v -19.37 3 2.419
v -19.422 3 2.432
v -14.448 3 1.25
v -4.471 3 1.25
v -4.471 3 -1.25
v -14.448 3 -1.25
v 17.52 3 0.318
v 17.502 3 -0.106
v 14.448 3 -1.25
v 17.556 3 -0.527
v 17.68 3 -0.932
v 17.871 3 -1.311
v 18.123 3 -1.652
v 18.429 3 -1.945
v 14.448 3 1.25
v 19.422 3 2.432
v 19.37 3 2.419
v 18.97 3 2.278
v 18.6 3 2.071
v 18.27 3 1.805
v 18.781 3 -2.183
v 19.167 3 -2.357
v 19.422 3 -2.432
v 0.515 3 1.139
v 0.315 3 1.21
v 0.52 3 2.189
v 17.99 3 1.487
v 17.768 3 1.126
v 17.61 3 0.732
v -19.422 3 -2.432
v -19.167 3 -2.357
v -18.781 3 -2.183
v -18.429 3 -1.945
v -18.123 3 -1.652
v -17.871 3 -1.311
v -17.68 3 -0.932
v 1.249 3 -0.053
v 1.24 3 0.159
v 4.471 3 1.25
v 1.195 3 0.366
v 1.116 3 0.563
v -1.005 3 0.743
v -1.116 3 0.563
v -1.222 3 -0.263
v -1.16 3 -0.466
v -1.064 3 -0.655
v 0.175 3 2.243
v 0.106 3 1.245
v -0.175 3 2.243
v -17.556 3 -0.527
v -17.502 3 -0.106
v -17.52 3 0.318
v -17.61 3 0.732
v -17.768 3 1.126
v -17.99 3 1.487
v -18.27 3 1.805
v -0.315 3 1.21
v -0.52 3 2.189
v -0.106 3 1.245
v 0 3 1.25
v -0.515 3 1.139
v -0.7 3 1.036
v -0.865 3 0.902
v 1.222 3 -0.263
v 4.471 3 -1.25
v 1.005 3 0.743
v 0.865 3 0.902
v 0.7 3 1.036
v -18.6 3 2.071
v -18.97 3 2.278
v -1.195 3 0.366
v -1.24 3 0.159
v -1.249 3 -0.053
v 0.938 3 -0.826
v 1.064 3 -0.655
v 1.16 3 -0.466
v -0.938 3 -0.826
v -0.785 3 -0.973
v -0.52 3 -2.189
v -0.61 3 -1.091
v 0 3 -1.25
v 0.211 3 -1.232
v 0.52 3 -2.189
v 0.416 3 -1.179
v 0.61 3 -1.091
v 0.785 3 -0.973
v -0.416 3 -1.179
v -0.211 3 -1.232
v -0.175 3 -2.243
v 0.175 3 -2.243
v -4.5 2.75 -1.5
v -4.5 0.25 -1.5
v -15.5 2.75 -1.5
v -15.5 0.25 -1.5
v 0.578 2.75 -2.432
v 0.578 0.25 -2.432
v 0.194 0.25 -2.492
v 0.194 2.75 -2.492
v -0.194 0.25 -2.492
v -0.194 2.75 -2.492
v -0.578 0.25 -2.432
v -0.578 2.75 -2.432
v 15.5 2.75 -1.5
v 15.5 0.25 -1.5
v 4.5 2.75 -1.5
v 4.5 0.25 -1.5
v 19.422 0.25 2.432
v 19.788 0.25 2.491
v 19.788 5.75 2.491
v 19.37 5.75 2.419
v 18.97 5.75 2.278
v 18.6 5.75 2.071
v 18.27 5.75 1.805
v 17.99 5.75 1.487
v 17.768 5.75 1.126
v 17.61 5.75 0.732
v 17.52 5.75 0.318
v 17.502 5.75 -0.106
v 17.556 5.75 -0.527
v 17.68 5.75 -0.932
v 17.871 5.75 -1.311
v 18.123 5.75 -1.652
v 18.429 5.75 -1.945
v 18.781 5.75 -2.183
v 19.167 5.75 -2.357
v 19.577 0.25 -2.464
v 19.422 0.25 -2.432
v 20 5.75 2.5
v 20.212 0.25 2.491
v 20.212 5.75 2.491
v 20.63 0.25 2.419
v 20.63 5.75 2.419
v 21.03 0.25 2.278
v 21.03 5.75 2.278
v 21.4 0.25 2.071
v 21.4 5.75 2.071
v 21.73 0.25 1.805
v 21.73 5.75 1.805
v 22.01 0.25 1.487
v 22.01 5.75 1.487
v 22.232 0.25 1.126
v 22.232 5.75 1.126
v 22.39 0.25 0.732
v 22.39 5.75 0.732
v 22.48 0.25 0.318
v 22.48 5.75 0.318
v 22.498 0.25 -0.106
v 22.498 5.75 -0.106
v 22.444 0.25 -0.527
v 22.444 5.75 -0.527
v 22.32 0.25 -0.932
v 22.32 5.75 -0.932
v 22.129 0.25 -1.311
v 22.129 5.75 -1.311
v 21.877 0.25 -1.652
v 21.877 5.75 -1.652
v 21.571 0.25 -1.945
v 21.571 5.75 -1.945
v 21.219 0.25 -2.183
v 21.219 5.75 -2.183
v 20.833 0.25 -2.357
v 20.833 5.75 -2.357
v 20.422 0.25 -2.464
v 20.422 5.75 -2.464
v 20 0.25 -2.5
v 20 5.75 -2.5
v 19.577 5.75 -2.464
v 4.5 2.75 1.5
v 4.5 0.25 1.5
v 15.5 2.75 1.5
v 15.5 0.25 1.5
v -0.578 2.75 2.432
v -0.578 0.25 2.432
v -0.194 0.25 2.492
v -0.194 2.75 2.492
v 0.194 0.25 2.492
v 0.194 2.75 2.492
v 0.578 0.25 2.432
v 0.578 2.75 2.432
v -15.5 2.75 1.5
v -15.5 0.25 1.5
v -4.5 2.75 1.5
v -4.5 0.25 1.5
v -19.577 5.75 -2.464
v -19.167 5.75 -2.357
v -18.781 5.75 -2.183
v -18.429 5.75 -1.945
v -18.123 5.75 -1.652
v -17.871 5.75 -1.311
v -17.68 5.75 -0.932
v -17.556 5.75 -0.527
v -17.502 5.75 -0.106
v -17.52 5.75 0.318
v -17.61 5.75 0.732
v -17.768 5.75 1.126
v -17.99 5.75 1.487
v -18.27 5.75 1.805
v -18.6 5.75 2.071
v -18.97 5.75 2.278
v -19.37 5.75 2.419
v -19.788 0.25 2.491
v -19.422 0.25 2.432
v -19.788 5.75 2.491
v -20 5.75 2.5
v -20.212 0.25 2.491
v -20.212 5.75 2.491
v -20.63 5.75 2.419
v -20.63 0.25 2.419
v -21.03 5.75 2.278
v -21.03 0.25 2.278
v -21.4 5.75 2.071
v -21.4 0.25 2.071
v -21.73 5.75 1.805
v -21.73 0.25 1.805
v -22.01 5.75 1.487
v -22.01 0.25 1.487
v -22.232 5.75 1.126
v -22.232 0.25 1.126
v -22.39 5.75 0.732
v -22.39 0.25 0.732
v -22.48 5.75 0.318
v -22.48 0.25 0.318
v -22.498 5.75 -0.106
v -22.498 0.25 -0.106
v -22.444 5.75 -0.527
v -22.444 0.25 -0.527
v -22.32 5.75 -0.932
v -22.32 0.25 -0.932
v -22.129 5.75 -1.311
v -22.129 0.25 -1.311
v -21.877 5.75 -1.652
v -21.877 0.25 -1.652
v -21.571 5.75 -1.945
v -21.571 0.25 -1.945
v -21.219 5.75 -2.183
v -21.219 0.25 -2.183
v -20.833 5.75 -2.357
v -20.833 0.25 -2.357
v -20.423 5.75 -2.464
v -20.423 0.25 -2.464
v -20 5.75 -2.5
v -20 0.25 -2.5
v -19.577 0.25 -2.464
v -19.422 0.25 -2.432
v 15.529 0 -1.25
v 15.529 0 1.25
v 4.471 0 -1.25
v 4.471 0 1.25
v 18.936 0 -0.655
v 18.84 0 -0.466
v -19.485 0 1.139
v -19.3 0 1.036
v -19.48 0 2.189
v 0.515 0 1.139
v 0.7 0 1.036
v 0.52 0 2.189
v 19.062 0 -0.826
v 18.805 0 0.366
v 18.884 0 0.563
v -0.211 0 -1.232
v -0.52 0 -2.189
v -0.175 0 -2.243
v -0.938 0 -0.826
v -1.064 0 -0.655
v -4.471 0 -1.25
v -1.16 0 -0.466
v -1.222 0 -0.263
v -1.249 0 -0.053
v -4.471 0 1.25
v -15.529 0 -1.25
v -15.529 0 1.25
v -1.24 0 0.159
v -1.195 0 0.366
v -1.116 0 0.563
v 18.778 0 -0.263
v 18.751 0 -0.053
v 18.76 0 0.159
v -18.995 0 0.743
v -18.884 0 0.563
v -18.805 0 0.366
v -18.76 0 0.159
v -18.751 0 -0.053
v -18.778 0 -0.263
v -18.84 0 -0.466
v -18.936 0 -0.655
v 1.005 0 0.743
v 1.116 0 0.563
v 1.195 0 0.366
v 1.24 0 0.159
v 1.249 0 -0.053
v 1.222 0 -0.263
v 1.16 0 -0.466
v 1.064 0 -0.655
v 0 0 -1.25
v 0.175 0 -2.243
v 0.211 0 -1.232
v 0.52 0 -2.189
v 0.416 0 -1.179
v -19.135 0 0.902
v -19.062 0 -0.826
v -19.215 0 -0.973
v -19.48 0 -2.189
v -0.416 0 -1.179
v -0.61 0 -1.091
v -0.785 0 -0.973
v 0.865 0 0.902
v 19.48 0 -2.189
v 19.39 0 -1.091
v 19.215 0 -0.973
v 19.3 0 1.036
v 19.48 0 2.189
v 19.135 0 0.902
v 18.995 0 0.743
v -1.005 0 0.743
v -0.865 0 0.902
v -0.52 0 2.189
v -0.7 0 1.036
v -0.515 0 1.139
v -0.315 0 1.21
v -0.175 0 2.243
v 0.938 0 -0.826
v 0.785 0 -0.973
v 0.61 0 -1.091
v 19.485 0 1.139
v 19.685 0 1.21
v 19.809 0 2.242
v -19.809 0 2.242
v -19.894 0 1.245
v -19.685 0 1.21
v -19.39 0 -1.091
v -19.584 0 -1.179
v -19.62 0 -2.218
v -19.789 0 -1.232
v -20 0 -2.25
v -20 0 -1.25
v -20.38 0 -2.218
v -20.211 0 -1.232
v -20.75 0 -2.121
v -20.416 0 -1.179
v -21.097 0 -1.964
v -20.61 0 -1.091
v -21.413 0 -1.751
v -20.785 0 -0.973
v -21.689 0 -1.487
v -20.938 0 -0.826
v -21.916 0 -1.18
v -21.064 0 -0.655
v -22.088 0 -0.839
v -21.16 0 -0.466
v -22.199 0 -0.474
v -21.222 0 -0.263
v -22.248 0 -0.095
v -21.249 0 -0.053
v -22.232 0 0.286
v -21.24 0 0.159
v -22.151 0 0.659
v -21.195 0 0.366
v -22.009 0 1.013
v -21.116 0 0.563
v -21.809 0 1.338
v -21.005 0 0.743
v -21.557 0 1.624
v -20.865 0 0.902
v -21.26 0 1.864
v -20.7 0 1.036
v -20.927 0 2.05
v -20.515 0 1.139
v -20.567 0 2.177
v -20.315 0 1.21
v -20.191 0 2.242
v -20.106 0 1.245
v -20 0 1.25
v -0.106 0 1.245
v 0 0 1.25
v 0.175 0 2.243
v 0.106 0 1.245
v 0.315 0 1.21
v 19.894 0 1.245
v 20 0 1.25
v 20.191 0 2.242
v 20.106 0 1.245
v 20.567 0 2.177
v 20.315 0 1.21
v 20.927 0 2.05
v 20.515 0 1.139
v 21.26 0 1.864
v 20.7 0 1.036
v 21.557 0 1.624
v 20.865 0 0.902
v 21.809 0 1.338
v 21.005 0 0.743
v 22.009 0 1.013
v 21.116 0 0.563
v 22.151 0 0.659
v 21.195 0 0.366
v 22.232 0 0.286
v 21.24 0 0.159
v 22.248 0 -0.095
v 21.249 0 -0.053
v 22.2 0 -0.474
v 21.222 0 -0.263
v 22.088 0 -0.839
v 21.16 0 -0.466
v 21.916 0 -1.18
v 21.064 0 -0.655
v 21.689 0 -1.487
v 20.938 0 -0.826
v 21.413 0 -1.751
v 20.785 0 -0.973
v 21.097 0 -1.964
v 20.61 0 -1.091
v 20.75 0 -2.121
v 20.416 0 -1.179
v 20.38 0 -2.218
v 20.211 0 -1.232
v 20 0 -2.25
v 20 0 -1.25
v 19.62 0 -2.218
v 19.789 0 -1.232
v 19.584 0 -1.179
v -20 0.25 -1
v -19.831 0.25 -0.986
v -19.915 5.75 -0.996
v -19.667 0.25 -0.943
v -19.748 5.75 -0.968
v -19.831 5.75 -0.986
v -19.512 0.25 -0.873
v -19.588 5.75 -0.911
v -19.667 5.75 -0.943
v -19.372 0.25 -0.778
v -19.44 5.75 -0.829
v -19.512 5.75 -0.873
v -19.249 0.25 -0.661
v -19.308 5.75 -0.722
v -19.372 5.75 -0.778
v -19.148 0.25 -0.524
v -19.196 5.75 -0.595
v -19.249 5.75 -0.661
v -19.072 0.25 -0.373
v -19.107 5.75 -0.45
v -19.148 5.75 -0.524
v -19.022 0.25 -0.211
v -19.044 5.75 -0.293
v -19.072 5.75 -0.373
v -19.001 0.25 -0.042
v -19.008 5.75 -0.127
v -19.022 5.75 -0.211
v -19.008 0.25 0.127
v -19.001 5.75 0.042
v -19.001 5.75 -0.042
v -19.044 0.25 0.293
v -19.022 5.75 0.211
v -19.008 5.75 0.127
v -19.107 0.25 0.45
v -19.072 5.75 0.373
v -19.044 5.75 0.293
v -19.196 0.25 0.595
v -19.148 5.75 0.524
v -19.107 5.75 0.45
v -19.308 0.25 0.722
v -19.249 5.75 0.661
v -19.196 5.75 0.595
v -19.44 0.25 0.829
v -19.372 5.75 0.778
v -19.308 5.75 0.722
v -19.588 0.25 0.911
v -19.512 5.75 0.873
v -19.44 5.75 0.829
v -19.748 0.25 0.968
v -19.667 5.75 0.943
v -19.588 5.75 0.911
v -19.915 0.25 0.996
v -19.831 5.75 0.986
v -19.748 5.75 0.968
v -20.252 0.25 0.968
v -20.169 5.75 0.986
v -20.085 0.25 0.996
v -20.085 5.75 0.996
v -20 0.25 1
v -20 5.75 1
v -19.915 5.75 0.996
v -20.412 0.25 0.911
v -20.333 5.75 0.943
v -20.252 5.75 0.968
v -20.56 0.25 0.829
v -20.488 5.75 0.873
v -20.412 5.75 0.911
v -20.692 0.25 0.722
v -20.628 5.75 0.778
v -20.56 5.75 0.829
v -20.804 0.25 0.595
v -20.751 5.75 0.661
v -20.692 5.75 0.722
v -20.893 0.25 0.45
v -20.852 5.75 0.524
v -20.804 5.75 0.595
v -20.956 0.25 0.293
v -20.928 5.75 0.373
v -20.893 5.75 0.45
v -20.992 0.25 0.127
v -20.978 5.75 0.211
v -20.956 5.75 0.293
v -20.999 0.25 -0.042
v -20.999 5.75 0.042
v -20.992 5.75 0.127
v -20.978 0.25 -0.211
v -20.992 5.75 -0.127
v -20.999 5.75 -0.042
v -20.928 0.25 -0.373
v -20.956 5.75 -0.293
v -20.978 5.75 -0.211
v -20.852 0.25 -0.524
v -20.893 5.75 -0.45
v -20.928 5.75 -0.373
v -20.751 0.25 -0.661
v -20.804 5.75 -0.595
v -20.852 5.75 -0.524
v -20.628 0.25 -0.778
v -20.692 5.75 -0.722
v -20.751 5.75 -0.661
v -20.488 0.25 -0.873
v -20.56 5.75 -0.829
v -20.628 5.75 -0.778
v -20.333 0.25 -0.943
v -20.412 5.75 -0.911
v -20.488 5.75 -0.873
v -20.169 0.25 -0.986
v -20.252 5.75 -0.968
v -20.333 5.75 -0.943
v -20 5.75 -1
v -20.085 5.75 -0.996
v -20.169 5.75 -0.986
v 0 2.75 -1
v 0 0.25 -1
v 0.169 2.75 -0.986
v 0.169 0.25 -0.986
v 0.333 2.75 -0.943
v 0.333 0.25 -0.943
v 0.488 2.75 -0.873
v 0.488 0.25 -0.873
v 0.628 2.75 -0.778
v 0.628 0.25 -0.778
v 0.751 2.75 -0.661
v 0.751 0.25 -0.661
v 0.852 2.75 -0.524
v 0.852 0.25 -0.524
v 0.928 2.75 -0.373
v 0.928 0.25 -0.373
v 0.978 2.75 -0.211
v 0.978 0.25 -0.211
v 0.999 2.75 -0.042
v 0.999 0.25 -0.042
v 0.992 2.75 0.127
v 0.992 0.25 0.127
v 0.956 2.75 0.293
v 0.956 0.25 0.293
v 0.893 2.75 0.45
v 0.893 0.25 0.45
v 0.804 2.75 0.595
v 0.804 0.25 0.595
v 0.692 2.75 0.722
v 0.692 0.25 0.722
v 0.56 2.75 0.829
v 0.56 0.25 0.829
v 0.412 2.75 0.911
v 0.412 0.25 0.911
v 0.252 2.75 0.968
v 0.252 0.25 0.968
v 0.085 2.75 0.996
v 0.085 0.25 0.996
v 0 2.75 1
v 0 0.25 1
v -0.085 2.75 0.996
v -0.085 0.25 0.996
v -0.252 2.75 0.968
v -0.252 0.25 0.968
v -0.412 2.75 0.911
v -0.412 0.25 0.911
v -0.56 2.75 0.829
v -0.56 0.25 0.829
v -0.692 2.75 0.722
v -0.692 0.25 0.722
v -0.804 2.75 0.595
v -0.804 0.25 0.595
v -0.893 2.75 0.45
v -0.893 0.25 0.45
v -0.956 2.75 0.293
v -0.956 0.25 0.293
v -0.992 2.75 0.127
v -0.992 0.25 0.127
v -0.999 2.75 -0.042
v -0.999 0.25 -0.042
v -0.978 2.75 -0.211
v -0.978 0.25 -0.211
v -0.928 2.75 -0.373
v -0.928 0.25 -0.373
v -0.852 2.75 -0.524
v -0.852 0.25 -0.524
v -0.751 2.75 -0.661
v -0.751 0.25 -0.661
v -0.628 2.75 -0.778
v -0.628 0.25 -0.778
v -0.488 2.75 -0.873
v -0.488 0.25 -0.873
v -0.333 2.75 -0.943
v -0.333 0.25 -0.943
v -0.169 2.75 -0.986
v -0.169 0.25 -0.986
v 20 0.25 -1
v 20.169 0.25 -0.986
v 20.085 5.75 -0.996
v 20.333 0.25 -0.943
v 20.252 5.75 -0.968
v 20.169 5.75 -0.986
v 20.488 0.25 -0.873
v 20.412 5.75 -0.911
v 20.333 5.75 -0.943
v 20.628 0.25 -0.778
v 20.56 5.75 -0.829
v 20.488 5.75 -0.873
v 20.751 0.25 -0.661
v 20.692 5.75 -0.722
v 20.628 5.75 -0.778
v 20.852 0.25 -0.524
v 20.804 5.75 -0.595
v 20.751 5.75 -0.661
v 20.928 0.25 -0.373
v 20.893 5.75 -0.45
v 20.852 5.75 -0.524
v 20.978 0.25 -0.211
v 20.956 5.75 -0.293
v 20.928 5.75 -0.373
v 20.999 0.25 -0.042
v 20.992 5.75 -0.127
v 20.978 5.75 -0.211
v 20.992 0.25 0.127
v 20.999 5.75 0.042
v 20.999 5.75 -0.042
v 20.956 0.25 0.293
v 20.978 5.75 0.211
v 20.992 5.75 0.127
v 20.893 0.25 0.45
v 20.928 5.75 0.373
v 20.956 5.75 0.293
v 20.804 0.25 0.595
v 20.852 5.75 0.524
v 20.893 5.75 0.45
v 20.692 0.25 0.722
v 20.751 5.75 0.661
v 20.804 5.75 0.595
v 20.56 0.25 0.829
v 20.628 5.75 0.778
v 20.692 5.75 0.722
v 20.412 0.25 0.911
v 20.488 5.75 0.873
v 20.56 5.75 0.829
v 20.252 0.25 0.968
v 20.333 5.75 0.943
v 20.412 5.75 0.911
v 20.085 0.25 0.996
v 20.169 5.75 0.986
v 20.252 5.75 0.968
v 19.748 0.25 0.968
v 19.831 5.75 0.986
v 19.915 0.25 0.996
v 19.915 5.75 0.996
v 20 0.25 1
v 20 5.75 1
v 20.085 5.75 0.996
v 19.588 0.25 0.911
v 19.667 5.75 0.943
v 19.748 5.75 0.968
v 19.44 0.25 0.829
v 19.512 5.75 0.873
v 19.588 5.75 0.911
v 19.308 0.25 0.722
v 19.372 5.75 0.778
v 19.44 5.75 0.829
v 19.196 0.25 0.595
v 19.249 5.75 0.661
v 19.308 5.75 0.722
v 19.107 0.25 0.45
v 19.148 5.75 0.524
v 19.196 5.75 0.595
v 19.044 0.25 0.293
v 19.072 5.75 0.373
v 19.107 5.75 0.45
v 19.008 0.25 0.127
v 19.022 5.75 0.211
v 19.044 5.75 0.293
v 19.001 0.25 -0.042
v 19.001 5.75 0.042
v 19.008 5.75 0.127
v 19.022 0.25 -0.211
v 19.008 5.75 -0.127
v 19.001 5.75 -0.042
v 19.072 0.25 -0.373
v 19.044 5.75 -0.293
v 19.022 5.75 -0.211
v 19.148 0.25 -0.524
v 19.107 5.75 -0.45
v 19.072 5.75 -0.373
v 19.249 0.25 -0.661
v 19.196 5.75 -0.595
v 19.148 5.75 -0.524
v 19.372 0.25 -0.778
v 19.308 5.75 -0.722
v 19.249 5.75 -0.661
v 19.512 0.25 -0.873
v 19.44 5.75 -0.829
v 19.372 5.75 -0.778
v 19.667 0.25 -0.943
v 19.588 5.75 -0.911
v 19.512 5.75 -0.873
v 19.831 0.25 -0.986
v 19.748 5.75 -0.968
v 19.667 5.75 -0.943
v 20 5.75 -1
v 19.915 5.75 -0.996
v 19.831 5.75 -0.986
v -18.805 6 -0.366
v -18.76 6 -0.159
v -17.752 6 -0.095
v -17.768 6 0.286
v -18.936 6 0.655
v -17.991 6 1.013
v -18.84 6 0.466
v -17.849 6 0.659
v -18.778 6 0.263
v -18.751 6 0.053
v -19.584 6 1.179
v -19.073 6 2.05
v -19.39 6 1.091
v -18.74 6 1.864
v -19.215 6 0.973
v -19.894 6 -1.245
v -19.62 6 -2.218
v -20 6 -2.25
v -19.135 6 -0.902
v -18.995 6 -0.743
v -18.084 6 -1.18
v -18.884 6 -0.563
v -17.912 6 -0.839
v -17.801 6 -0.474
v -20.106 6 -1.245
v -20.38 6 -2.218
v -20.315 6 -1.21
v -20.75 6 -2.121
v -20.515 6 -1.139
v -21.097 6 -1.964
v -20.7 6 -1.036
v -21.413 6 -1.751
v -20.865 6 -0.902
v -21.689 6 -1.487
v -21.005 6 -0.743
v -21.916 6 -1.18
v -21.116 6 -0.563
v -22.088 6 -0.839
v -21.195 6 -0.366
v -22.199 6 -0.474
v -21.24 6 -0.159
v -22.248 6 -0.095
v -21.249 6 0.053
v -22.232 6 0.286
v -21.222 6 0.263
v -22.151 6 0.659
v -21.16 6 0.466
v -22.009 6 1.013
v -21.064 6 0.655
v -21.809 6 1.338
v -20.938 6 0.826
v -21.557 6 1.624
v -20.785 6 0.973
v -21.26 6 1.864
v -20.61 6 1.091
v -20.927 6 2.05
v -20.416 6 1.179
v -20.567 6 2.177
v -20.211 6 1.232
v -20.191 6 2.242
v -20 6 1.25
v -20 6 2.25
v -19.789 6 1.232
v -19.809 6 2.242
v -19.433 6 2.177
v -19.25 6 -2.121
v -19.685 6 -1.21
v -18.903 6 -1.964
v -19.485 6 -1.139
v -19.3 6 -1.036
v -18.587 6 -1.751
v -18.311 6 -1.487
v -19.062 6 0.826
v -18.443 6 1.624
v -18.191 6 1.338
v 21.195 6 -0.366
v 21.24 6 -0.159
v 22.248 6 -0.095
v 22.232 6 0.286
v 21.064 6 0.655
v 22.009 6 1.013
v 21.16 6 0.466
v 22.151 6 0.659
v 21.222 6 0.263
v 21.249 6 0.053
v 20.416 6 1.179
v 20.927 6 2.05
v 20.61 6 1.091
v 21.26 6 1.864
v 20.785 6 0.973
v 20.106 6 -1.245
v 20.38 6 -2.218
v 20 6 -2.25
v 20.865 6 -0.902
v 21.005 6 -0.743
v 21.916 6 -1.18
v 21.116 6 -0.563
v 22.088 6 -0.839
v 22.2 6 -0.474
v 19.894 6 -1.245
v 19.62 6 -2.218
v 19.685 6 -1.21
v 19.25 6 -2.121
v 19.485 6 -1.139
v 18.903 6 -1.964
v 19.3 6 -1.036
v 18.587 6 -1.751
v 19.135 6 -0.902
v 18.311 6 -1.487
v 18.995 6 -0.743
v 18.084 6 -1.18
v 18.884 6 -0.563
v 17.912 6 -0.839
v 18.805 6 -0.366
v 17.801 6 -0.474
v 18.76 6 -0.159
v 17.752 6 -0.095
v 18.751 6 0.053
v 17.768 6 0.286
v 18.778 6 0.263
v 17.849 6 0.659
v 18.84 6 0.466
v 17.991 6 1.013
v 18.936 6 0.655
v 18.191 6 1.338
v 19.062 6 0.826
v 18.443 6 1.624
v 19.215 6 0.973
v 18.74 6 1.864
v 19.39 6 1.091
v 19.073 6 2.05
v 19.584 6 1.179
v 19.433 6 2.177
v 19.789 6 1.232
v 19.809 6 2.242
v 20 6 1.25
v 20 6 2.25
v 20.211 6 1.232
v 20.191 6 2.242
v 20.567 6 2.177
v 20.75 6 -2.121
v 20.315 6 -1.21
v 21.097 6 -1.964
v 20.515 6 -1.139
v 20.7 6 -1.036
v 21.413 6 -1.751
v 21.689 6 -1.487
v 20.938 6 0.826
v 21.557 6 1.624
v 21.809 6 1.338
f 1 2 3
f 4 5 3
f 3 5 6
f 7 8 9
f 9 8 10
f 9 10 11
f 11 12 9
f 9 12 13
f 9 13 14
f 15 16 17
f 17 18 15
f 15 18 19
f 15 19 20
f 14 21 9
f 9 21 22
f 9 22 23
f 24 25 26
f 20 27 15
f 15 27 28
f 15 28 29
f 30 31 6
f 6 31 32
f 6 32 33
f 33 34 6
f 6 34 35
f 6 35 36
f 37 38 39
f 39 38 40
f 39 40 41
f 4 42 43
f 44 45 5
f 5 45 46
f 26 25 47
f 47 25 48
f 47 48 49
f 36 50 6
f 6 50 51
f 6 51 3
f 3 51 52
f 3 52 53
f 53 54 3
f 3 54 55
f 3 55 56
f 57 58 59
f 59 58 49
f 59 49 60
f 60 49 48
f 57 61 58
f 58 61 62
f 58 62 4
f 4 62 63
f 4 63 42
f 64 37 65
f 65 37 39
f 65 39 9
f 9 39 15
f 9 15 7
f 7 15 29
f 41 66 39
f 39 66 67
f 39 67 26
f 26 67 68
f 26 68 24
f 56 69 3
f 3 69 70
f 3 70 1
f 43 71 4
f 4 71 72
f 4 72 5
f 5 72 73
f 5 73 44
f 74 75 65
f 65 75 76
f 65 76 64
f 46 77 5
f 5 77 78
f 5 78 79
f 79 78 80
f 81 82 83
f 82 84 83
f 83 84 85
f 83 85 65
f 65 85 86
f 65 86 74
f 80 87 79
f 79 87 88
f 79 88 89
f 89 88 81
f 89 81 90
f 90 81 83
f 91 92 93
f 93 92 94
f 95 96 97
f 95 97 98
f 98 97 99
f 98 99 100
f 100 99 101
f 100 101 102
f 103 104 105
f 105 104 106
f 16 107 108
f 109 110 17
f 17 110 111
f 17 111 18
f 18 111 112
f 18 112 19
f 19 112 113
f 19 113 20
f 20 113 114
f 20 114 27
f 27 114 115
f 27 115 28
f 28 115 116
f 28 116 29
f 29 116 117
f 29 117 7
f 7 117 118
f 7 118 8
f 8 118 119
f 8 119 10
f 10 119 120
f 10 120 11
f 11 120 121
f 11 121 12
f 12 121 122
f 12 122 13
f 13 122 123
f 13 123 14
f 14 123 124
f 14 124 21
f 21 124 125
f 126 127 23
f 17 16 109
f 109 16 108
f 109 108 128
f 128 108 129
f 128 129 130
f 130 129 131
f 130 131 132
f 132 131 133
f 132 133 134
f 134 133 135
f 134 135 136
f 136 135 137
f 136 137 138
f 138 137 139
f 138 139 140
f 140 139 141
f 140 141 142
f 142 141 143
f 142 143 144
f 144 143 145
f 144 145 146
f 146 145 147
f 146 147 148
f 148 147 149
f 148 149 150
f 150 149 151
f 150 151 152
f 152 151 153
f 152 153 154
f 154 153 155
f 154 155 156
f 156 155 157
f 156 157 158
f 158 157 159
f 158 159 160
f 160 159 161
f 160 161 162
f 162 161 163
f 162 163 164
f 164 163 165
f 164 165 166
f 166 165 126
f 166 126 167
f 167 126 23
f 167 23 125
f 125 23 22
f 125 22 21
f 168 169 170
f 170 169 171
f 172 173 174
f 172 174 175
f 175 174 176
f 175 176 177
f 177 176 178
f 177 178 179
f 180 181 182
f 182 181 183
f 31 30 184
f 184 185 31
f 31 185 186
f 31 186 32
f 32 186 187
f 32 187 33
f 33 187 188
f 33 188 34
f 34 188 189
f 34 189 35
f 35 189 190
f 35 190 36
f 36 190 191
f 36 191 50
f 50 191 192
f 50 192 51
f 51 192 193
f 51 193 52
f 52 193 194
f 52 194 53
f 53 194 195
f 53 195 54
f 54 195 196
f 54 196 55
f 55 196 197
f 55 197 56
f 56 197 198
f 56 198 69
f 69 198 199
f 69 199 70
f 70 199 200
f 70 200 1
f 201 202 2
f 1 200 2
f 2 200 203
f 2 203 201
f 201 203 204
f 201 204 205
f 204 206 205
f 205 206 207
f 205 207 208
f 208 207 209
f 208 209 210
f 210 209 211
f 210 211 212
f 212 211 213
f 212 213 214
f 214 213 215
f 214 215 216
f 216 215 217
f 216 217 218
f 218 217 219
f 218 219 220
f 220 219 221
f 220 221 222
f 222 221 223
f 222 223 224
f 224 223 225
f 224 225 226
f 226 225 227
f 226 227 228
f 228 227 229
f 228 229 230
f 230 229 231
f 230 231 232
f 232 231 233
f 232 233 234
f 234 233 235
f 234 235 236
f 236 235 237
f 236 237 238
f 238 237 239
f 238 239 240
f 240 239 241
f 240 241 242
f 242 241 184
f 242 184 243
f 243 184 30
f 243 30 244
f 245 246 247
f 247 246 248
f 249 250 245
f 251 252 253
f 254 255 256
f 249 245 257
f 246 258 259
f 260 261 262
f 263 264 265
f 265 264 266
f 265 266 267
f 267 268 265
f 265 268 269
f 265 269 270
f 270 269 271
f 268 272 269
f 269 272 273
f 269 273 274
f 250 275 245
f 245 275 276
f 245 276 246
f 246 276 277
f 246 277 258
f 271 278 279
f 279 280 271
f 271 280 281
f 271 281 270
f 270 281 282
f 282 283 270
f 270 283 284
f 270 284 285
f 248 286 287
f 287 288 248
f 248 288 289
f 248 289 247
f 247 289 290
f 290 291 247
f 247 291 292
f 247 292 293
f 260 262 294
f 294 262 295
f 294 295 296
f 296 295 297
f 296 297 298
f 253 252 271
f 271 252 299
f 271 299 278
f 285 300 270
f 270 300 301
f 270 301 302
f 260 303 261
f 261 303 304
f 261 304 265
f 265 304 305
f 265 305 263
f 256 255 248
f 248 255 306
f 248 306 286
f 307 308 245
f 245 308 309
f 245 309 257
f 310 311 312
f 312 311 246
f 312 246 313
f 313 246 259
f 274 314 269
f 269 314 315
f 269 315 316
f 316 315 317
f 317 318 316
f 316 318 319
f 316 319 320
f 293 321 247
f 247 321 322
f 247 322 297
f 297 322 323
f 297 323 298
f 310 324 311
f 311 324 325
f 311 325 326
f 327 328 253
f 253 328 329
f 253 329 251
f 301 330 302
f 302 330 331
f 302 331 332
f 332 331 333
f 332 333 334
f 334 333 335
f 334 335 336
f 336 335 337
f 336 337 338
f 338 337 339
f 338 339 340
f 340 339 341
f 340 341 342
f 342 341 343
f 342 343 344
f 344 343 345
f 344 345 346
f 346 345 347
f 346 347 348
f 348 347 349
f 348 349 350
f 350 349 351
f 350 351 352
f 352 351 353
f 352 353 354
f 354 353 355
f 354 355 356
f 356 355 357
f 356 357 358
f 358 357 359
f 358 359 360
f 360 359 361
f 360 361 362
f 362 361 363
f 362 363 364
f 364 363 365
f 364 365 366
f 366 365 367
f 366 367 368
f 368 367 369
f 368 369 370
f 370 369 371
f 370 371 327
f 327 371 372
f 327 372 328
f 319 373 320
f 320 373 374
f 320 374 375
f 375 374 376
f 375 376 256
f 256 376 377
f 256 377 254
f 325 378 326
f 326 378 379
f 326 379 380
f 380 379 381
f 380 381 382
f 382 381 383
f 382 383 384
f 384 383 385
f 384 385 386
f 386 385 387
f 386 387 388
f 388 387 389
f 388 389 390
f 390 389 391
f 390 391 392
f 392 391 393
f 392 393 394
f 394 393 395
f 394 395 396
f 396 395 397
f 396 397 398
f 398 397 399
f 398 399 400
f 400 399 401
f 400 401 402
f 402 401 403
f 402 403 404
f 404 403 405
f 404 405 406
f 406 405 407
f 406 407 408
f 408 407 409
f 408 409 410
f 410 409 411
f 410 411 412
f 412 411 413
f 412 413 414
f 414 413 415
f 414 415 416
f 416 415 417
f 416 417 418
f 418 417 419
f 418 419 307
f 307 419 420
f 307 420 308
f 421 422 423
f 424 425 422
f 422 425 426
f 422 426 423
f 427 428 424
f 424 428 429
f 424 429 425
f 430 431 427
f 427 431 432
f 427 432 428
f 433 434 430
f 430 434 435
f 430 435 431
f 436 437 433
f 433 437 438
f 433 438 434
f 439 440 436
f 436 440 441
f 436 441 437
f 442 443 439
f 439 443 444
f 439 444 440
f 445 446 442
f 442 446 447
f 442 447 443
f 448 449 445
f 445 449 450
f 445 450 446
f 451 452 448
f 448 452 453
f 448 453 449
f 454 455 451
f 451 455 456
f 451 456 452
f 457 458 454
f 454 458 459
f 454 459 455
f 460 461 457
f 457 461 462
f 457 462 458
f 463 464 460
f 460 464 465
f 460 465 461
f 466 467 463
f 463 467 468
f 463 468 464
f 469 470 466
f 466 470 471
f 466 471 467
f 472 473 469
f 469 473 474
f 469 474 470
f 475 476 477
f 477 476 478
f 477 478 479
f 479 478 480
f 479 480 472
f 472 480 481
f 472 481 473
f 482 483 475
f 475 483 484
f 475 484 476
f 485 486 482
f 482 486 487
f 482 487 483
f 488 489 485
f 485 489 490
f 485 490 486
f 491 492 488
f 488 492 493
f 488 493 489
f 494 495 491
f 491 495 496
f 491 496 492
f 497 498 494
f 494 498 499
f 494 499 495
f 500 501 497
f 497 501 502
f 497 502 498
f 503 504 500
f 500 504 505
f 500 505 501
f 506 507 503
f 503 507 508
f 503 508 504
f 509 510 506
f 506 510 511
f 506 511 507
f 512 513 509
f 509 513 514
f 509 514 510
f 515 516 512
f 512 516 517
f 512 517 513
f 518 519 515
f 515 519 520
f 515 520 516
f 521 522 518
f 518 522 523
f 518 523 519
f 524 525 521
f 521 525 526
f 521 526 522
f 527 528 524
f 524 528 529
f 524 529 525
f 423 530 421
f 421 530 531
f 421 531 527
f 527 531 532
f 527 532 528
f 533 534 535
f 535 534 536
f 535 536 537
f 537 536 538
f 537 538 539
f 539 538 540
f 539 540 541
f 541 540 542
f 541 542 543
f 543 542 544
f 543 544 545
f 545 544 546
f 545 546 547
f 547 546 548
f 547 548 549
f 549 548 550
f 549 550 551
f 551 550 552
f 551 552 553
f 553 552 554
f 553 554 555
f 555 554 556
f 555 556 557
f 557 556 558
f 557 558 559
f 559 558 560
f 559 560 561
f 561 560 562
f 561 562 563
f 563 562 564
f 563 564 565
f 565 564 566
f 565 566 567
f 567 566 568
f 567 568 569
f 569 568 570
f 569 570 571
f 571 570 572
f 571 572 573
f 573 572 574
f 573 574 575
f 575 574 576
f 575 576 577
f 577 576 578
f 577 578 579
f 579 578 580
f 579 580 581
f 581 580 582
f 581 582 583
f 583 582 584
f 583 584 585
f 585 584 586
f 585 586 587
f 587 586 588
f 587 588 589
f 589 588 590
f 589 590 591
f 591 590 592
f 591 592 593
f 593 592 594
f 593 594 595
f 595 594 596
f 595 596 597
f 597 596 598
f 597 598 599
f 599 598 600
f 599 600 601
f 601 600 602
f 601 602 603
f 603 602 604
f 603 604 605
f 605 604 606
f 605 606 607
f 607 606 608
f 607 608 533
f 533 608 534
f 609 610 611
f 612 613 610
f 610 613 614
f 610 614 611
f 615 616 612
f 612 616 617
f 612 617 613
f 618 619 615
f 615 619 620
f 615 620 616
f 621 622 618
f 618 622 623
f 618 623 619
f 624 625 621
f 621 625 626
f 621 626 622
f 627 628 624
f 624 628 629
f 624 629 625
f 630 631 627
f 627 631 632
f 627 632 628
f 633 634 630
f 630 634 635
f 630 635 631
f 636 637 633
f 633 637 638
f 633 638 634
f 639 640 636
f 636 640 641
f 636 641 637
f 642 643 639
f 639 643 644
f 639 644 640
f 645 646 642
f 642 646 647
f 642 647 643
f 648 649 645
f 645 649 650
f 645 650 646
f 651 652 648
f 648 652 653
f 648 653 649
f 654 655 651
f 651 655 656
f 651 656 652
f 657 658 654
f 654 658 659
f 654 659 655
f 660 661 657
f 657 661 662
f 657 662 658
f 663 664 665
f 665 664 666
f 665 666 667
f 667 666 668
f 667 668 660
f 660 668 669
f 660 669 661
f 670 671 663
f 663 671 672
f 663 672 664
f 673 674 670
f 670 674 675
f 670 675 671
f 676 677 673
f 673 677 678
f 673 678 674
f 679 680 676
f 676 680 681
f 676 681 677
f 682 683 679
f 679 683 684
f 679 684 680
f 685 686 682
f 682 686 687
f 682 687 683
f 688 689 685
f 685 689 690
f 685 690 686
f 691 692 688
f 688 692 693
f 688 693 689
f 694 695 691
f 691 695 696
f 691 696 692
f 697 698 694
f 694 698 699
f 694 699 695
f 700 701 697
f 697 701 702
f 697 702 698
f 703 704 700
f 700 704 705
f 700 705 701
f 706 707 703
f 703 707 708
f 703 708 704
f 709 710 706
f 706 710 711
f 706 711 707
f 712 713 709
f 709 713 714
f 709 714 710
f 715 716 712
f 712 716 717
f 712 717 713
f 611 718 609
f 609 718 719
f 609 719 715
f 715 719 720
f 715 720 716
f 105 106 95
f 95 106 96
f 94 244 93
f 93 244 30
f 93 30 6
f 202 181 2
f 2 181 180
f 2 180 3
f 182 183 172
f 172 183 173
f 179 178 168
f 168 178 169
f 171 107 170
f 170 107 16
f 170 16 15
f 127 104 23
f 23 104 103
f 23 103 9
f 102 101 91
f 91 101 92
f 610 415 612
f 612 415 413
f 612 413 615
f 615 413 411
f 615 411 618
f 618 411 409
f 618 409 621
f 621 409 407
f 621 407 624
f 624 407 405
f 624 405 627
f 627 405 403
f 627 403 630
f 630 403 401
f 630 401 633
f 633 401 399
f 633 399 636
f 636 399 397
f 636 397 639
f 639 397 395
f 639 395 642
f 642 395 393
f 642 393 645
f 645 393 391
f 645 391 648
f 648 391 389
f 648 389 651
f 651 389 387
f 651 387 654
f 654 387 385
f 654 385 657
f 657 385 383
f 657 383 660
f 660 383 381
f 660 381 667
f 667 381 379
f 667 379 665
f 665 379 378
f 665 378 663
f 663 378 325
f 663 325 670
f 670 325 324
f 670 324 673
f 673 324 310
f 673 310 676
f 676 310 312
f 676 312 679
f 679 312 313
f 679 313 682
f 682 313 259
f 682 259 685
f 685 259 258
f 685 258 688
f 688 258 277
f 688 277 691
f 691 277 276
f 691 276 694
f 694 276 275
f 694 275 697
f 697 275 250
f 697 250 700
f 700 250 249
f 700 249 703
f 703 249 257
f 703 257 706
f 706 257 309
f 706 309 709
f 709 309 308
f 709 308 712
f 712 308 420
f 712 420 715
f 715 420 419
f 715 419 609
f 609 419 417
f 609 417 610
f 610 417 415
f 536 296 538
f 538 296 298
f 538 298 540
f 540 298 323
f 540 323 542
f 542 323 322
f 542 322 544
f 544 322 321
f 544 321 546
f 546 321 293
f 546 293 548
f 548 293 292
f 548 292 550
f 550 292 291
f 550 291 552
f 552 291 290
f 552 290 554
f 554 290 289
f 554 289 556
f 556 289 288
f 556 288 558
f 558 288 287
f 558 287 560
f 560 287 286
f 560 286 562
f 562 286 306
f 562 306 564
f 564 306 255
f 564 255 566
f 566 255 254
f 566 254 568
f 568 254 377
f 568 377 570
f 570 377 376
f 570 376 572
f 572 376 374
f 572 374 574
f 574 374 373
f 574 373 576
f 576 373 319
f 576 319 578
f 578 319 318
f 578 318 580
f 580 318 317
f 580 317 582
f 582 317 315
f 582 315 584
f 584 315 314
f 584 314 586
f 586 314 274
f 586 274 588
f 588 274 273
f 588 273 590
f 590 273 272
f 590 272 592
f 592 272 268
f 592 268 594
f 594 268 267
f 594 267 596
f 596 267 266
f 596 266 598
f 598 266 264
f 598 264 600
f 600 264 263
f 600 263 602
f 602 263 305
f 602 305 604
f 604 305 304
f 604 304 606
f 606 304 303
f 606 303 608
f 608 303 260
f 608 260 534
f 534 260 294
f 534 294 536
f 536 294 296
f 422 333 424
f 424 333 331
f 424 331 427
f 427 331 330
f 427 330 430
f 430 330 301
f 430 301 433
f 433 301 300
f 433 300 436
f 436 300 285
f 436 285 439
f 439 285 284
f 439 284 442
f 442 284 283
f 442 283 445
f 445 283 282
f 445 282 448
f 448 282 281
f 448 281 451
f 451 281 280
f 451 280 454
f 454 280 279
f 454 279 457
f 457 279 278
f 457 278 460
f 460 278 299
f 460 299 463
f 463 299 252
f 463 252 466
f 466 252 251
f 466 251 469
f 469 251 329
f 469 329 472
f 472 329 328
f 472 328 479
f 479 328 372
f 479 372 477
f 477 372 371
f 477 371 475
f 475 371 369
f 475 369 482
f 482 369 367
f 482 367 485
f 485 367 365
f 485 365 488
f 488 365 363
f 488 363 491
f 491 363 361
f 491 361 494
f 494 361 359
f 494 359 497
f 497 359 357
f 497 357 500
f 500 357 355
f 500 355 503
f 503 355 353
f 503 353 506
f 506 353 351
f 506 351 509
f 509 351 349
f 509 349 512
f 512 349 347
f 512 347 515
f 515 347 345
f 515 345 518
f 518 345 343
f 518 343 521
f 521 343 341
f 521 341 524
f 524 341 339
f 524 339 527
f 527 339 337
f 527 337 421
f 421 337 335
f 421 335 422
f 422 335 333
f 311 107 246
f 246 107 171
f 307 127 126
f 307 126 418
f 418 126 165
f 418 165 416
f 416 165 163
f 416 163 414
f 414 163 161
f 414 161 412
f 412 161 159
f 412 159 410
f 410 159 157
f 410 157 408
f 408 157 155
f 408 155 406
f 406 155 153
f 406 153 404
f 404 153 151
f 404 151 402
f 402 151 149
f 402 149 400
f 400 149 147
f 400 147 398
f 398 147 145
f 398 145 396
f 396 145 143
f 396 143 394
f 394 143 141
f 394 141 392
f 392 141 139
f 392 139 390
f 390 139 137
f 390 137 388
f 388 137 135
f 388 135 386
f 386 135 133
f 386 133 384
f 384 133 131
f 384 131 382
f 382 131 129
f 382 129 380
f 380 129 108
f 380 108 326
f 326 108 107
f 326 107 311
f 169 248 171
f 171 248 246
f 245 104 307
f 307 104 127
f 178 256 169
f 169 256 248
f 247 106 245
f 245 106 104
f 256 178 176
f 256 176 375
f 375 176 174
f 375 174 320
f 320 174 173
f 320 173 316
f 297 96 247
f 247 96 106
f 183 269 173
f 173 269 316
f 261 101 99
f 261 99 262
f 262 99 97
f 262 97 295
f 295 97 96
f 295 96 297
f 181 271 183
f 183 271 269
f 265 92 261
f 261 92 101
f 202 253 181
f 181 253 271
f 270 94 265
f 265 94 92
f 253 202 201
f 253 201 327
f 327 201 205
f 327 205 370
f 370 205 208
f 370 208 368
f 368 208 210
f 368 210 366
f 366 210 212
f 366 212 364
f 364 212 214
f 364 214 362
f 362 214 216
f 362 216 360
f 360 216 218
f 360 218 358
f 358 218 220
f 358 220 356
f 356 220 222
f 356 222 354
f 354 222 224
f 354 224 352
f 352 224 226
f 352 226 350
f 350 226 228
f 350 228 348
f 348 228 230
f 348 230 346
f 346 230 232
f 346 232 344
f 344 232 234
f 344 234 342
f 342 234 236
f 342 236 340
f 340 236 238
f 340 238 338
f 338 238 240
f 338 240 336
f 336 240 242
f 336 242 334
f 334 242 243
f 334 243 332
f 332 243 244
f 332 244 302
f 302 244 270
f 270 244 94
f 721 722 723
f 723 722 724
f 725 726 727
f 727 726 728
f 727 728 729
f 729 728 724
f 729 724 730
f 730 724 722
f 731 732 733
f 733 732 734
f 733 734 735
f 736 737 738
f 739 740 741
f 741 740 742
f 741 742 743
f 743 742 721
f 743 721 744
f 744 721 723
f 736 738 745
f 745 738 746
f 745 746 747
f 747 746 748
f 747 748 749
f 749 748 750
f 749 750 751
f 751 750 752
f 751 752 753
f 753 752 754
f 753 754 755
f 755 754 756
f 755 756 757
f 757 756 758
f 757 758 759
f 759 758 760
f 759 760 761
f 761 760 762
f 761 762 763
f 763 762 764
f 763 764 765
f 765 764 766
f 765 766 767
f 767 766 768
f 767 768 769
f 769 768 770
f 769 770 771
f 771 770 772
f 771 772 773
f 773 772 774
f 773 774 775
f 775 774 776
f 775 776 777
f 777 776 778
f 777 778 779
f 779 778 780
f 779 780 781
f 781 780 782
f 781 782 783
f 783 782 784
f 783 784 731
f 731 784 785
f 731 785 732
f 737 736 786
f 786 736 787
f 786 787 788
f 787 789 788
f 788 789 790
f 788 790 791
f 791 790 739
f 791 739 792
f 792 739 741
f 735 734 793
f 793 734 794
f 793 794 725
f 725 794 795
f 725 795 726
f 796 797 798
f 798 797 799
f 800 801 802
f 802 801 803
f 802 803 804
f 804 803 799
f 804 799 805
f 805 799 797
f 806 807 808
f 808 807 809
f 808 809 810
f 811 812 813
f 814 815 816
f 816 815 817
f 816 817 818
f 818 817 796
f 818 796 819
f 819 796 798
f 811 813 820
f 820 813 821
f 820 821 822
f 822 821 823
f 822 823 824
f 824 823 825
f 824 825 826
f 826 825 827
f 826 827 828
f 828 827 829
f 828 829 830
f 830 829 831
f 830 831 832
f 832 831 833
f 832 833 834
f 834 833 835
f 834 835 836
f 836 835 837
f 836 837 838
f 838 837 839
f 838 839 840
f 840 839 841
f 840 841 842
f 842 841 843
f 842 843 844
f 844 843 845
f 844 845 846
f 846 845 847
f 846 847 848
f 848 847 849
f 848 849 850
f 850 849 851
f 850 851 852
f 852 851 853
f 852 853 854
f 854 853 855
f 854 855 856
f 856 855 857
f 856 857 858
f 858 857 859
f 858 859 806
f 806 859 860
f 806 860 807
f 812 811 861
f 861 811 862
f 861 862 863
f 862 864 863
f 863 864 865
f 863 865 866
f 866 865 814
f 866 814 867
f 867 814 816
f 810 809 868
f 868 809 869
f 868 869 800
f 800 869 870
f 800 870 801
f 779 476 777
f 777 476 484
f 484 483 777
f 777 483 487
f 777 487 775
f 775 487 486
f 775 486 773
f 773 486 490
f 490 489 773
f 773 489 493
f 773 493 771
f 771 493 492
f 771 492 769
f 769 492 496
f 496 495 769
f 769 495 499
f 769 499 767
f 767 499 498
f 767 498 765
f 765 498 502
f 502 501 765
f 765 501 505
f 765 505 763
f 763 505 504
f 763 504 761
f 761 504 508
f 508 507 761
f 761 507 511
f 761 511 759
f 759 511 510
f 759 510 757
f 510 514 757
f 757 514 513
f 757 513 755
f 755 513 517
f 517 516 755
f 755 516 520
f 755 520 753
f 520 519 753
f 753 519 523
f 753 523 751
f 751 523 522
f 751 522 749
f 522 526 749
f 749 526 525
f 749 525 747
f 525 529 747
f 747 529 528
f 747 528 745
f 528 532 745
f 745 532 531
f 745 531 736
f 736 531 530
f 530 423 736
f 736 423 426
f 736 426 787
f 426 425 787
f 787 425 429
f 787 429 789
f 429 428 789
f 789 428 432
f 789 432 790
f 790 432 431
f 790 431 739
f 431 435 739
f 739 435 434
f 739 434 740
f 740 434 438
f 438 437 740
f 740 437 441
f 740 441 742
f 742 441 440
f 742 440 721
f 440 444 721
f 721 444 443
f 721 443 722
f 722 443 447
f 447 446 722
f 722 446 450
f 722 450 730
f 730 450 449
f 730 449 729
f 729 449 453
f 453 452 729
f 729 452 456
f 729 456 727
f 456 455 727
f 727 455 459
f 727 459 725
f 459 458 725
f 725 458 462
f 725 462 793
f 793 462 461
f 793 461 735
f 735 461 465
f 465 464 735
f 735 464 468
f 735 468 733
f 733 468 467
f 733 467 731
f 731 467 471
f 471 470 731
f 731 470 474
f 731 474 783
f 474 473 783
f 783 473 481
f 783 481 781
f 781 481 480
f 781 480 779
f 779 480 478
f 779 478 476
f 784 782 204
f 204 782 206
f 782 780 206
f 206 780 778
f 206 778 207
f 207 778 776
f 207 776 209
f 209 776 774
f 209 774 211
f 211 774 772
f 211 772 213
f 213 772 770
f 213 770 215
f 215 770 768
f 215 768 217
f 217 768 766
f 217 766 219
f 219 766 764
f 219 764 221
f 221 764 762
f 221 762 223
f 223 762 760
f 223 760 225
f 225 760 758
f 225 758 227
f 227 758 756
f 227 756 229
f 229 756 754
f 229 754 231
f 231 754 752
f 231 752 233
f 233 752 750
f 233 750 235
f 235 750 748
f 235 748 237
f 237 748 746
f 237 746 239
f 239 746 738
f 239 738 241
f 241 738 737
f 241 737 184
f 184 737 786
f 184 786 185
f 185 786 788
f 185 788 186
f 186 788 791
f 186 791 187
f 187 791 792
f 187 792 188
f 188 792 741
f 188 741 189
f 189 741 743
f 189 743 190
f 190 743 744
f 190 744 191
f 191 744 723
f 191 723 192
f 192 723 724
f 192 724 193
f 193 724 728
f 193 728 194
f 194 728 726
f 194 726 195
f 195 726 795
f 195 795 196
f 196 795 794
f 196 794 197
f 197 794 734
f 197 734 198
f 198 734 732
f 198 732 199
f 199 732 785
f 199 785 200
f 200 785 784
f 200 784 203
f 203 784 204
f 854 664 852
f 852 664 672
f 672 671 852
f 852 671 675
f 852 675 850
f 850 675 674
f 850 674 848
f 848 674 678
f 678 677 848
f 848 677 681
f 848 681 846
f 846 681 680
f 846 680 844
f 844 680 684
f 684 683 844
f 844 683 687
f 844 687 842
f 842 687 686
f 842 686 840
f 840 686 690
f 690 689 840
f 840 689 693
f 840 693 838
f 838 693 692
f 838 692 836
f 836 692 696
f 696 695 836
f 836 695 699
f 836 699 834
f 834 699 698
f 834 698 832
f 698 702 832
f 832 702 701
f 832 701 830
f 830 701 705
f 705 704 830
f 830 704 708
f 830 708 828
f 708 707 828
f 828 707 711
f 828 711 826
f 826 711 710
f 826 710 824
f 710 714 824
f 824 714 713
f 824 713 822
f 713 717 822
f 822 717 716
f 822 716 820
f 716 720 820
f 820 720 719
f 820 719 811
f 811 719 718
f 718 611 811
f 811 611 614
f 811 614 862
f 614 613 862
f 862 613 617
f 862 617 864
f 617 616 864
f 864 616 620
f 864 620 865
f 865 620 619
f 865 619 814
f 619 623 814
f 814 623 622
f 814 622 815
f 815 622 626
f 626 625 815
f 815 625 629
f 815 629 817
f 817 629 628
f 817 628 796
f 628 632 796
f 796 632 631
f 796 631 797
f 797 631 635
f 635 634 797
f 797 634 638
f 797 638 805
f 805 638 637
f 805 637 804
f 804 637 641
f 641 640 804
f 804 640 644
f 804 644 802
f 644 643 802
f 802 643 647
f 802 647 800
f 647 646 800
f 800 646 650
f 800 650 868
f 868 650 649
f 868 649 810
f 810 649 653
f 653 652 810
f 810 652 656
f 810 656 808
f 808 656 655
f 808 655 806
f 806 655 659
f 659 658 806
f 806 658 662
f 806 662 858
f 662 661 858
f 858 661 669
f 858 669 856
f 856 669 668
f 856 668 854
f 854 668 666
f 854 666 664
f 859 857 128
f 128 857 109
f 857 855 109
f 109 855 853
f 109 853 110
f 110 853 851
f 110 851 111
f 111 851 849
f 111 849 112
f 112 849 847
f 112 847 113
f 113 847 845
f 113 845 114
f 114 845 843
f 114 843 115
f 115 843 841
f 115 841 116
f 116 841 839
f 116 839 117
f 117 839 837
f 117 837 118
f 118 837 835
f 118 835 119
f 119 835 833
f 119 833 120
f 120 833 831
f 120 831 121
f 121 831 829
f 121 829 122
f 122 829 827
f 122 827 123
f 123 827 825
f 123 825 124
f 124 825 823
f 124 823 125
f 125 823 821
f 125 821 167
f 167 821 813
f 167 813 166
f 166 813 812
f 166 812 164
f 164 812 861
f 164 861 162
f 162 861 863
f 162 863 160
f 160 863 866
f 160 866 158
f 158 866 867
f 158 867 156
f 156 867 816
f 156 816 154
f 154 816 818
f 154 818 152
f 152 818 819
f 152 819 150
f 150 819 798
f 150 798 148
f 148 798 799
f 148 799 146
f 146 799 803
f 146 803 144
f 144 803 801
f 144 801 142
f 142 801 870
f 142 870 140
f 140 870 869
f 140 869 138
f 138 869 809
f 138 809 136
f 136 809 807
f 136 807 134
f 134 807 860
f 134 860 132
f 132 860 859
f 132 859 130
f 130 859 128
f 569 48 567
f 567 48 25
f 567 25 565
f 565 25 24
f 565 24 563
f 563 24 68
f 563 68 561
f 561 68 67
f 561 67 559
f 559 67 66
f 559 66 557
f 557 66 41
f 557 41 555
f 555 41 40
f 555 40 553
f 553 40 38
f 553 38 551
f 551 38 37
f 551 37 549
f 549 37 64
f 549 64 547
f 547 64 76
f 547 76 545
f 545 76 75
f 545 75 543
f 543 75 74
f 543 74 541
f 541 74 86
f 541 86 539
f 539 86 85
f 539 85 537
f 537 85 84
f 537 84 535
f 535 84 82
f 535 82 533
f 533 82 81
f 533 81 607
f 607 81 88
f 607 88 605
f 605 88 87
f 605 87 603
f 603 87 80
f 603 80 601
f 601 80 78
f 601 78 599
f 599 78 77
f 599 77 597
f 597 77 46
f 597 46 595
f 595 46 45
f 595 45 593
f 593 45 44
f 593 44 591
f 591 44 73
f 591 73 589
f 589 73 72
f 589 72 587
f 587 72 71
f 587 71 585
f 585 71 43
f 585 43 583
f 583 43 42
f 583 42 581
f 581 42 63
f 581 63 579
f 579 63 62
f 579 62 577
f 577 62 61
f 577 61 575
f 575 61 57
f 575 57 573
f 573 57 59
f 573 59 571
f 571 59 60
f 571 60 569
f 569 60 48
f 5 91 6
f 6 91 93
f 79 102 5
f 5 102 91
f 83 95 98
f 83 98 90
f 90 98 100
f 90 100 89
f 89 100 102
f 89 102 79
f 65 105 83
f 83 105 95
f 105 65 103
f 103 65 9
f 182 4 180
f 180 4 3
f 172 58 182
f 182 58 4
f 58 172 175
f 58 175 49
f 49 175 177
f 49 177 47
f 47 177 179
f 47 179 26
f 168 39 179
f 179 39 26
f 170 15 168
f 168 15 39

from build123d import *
from build123d.topology import SkipClean

# Parameters (mm, degrees)
SKETCH_1_R      = 1
EXTRUDE_1_DEPTH = 3
EXTRUDE_2_DEPTH = 3
CHAMFER_1_SIZE  = 0.25
EXTRUDE_START   = 3
SKETCH_4_R      = 2.5
SKETCH_4_R_2    = 1
EXTRUDE_3_DEPTH = 3
CHAMFER_4_SIZE  = 0.25
CHAMFER_5_SIZE  = 0.25


with BuildPart() as part:
    # 草图1 → 凸台-拉伸1 (new body)
    with BuildSketch(Plane(origin=(0, 0, 0), x_dir=(1, 0, 0), z_dir=(0, 1, 0))):
        with BuildLine():
            Line((-18, 1.5), (-2, 1.5))
            ThreePointArc((-2, 1.5), (0, 2.5), (2, 1.5))
            Line((2, 1.5), (18, 1.5))
            ThreePointArc((18, 1.5), (22.5, 0), (18, -1.5))
            Line((18, -1.5), (2, -1.5))
            ThreePointArc((2, -1.5), (0, -2.5), (-2, -1.5))
            Line((-2, -1.5), (-18, -1.5))
            ThreePointArc((-18, -1.5), (-22.5, 0), (-18, 1.5))
        make_face()
        with Locations(Location((-20, 0, 0), (0, 0, 270))):
            Circle(SKETCH_1_R, mode=Mode.SUBTRACT)
        with Locations(Location((0, 0, 0), (0, 0, 270))):
            Circle(SKETCH_1_R, mode=Mode.SUBTRACT)
        with Locations(Location((20, 0, 0), (0, 0, 270))):
            Circle(SKETCH_1_R, mode=Mode.SUBTRACT)
    extrude(amount=EXTRUDE_1_DEPTH)

    # 草图2 → 凸台-拉伸2 (add)
    with BuildSketch(Plane(origin=(0, 0, 0), x_dir=(1, 0, 0), z_dir=(0, 1, 0))):
        with BuildLine():
            Line((4.5, 1.5), (0.578145, 2.432231))
            ThreePointArc((0.578145, 2.432231), (1.370756, 2.0907), (2, 1.5))
            Line((2, 1.5), (4.5, 1.5))
        make_face()
        with BuildLine():
            Line((4.5, -1.5), (0.578145, -2.432231))
            ThreePointArc((0.578145, -2.432231), (1.370756, -2.0907), (2, -1.5))
            Line((2, -1.5), (4.5, -1.5))
        make_face()
        with BuildLine():
            Line((15.5, 1.5), (19.421855, 2.432231))
            ThreePointArc((19.421855, 2.432231), (18.629244, 2.0907), (18, 1.5))
            Line((18, 1.5), (15.5, 1.5))
        make_face()
        with BuildLine():
            Line((15.5, -1.5), (19.421855, -2.432231))
            ThreePointArc((19.421855, -2.432231), (18.629244, -2.0907), (18, -1.5))
            Line((18, -1.5), (15.5, -1.5))
        make_face()
        with BuildLine():
            Line((-4.5, 1.5), (-2, 1.5))
            ThreePointArc((-2, 1.5), (-1.370756, 2.0907), (-0.578145, 2.432231))
            Line((-0.578145, 2.432231), (-4.5, 1.5))
        make_face()
        with BuildLine():
            Line((-15.5, -1.5), (-18, -1.5))
            ThreePointArc((-18, -1.5), (-18.629244, -2.0907), (-19.421855, -2.432231))
            Line((-19.421855, -2.432231), (-15.5, -1.5))
        make_face()
        with BuildLine():
            Line((-18, 1.5), (-15.5, 1.5))
            Line((-15.5, 1.5), (-19.421855, 2.432231))
            ThreePointArc((-19.421855, 2.432231), (-18.629244, 2.0907), (-18, 1.5))
        make_face()
        with BuildLine():
            Line((-2, -1.5), (-4.5, -1.5))
            Line((-4.5, -1.5), (-0.578145, -2.432231))
            ThreePointArc((-0.578145, -2.432231), (-1.370756, -2.0907), (-2, -1.5))
        make_face()
    extrude(amount=EXTRUDE_2_DEPTH)

    # 倒角1
    chamfer_1_edges = [part.edges().sort_by_distance(p)[0] for p in [
        (-10, 0, -1.5),
        (-2.539073, 0, -1.966116),
        (-20, 0, -1),
        (0, 0, -1),
        (20, 0, -1),
        (0, 0, -2.5),
        (2.539073, 0, -1.966116),
        (-22.5, 0, 0),
        (-17.460927, 0, -1.966116),
        (-10, 0, 1.5),
        (-17.460927, 0, 1.966116),
        (0, 0, 2.5),
        (-2.539073, 0, 1.966116),
        (10, 0, 1.5),
        (2.539073, 0, 1.966116),
        (22.5, 0, 0),
        (17.460927, 0, 1.966116),
        (10, 0, -1.5),
        (17.460927, 0, -1.966116),
    ]]
    chamfer(chamfer_1_edges, length=CHAMFER_1_SIZE)

    # 草图4 → 凸台-拉伸3 (add)
    # profile 1 of 2: a face of its own
    with SkipClean():  # the faces are left unmerged after this step: merging them gives an invalid solid
        with BuildSketch(Plane(origin=(0, 0, 0), x_dir=(1, 0, 0), z_dir=(0, 1, 0)).offset(EXTRUDE_START)):
            with Locations(Location((-20, 0, 0), (0, 0, 76.628849))):
                Circle(SKETCH_4_R)
            with Locations(Location((-20, 0, 0), (0, 0, 270))):
                Circle(SKETCH_4_R_2, mode=Mode.SUBTRACT)
        # profile 2 of 2: a face of its own
        with BuildSketch(Plane(origin=(0, 0, 0), x_dir=(1, 0, 0), z_dir=(0, 1, 0)).offset(EXTRUDE_START)):
            with Locations(Location((20, 0, 0), (0, 0, 103.371151))):
                Circle(SKETCH_4_R)
            with Locations(Location((20, 0, 0), (0, 0, 270))):
                Circle(SKETCH_4_R_2, mode=Mode.SUBTRACT)
        extrude(amount=EXTRUDE_3_DEPTH)

    # 倒角4
    chamfer_4_edges = [part.edges().sort_by_distance(p)[0] for p in [
        (-20.578145, 6, 2.432231),
        (-20, 6, -1),
        (20.578145, 6, 2.432231),
        (20, 6, -1),
    ]]
    chamfer(chamfer_4_edges, length=CHAMFER_4_SIZE)

    # 倒角5
    chamfer_5_edges = [part.edges().sort_by_distance(p)[0] for p in [
        (-10, 3, -1.5),
        (-2.539073, 3, -1.966116),
        (0, 3, -1),
        (0, 3, -2.5),
        (2.539073, 3, -1.966116),
        (-10, 3, 1.5),
        (0, 3, 2.5),
        (-2.539073, 3, 1.966116),
        (10, 3, 1.5),
        (2.539073, 3, 1.966116),
        (10, 3, -1.5),
    ]]
    chamfer(chamfer_5_edges, length=CHAMFER_5_SIZE)


solid = part.part
